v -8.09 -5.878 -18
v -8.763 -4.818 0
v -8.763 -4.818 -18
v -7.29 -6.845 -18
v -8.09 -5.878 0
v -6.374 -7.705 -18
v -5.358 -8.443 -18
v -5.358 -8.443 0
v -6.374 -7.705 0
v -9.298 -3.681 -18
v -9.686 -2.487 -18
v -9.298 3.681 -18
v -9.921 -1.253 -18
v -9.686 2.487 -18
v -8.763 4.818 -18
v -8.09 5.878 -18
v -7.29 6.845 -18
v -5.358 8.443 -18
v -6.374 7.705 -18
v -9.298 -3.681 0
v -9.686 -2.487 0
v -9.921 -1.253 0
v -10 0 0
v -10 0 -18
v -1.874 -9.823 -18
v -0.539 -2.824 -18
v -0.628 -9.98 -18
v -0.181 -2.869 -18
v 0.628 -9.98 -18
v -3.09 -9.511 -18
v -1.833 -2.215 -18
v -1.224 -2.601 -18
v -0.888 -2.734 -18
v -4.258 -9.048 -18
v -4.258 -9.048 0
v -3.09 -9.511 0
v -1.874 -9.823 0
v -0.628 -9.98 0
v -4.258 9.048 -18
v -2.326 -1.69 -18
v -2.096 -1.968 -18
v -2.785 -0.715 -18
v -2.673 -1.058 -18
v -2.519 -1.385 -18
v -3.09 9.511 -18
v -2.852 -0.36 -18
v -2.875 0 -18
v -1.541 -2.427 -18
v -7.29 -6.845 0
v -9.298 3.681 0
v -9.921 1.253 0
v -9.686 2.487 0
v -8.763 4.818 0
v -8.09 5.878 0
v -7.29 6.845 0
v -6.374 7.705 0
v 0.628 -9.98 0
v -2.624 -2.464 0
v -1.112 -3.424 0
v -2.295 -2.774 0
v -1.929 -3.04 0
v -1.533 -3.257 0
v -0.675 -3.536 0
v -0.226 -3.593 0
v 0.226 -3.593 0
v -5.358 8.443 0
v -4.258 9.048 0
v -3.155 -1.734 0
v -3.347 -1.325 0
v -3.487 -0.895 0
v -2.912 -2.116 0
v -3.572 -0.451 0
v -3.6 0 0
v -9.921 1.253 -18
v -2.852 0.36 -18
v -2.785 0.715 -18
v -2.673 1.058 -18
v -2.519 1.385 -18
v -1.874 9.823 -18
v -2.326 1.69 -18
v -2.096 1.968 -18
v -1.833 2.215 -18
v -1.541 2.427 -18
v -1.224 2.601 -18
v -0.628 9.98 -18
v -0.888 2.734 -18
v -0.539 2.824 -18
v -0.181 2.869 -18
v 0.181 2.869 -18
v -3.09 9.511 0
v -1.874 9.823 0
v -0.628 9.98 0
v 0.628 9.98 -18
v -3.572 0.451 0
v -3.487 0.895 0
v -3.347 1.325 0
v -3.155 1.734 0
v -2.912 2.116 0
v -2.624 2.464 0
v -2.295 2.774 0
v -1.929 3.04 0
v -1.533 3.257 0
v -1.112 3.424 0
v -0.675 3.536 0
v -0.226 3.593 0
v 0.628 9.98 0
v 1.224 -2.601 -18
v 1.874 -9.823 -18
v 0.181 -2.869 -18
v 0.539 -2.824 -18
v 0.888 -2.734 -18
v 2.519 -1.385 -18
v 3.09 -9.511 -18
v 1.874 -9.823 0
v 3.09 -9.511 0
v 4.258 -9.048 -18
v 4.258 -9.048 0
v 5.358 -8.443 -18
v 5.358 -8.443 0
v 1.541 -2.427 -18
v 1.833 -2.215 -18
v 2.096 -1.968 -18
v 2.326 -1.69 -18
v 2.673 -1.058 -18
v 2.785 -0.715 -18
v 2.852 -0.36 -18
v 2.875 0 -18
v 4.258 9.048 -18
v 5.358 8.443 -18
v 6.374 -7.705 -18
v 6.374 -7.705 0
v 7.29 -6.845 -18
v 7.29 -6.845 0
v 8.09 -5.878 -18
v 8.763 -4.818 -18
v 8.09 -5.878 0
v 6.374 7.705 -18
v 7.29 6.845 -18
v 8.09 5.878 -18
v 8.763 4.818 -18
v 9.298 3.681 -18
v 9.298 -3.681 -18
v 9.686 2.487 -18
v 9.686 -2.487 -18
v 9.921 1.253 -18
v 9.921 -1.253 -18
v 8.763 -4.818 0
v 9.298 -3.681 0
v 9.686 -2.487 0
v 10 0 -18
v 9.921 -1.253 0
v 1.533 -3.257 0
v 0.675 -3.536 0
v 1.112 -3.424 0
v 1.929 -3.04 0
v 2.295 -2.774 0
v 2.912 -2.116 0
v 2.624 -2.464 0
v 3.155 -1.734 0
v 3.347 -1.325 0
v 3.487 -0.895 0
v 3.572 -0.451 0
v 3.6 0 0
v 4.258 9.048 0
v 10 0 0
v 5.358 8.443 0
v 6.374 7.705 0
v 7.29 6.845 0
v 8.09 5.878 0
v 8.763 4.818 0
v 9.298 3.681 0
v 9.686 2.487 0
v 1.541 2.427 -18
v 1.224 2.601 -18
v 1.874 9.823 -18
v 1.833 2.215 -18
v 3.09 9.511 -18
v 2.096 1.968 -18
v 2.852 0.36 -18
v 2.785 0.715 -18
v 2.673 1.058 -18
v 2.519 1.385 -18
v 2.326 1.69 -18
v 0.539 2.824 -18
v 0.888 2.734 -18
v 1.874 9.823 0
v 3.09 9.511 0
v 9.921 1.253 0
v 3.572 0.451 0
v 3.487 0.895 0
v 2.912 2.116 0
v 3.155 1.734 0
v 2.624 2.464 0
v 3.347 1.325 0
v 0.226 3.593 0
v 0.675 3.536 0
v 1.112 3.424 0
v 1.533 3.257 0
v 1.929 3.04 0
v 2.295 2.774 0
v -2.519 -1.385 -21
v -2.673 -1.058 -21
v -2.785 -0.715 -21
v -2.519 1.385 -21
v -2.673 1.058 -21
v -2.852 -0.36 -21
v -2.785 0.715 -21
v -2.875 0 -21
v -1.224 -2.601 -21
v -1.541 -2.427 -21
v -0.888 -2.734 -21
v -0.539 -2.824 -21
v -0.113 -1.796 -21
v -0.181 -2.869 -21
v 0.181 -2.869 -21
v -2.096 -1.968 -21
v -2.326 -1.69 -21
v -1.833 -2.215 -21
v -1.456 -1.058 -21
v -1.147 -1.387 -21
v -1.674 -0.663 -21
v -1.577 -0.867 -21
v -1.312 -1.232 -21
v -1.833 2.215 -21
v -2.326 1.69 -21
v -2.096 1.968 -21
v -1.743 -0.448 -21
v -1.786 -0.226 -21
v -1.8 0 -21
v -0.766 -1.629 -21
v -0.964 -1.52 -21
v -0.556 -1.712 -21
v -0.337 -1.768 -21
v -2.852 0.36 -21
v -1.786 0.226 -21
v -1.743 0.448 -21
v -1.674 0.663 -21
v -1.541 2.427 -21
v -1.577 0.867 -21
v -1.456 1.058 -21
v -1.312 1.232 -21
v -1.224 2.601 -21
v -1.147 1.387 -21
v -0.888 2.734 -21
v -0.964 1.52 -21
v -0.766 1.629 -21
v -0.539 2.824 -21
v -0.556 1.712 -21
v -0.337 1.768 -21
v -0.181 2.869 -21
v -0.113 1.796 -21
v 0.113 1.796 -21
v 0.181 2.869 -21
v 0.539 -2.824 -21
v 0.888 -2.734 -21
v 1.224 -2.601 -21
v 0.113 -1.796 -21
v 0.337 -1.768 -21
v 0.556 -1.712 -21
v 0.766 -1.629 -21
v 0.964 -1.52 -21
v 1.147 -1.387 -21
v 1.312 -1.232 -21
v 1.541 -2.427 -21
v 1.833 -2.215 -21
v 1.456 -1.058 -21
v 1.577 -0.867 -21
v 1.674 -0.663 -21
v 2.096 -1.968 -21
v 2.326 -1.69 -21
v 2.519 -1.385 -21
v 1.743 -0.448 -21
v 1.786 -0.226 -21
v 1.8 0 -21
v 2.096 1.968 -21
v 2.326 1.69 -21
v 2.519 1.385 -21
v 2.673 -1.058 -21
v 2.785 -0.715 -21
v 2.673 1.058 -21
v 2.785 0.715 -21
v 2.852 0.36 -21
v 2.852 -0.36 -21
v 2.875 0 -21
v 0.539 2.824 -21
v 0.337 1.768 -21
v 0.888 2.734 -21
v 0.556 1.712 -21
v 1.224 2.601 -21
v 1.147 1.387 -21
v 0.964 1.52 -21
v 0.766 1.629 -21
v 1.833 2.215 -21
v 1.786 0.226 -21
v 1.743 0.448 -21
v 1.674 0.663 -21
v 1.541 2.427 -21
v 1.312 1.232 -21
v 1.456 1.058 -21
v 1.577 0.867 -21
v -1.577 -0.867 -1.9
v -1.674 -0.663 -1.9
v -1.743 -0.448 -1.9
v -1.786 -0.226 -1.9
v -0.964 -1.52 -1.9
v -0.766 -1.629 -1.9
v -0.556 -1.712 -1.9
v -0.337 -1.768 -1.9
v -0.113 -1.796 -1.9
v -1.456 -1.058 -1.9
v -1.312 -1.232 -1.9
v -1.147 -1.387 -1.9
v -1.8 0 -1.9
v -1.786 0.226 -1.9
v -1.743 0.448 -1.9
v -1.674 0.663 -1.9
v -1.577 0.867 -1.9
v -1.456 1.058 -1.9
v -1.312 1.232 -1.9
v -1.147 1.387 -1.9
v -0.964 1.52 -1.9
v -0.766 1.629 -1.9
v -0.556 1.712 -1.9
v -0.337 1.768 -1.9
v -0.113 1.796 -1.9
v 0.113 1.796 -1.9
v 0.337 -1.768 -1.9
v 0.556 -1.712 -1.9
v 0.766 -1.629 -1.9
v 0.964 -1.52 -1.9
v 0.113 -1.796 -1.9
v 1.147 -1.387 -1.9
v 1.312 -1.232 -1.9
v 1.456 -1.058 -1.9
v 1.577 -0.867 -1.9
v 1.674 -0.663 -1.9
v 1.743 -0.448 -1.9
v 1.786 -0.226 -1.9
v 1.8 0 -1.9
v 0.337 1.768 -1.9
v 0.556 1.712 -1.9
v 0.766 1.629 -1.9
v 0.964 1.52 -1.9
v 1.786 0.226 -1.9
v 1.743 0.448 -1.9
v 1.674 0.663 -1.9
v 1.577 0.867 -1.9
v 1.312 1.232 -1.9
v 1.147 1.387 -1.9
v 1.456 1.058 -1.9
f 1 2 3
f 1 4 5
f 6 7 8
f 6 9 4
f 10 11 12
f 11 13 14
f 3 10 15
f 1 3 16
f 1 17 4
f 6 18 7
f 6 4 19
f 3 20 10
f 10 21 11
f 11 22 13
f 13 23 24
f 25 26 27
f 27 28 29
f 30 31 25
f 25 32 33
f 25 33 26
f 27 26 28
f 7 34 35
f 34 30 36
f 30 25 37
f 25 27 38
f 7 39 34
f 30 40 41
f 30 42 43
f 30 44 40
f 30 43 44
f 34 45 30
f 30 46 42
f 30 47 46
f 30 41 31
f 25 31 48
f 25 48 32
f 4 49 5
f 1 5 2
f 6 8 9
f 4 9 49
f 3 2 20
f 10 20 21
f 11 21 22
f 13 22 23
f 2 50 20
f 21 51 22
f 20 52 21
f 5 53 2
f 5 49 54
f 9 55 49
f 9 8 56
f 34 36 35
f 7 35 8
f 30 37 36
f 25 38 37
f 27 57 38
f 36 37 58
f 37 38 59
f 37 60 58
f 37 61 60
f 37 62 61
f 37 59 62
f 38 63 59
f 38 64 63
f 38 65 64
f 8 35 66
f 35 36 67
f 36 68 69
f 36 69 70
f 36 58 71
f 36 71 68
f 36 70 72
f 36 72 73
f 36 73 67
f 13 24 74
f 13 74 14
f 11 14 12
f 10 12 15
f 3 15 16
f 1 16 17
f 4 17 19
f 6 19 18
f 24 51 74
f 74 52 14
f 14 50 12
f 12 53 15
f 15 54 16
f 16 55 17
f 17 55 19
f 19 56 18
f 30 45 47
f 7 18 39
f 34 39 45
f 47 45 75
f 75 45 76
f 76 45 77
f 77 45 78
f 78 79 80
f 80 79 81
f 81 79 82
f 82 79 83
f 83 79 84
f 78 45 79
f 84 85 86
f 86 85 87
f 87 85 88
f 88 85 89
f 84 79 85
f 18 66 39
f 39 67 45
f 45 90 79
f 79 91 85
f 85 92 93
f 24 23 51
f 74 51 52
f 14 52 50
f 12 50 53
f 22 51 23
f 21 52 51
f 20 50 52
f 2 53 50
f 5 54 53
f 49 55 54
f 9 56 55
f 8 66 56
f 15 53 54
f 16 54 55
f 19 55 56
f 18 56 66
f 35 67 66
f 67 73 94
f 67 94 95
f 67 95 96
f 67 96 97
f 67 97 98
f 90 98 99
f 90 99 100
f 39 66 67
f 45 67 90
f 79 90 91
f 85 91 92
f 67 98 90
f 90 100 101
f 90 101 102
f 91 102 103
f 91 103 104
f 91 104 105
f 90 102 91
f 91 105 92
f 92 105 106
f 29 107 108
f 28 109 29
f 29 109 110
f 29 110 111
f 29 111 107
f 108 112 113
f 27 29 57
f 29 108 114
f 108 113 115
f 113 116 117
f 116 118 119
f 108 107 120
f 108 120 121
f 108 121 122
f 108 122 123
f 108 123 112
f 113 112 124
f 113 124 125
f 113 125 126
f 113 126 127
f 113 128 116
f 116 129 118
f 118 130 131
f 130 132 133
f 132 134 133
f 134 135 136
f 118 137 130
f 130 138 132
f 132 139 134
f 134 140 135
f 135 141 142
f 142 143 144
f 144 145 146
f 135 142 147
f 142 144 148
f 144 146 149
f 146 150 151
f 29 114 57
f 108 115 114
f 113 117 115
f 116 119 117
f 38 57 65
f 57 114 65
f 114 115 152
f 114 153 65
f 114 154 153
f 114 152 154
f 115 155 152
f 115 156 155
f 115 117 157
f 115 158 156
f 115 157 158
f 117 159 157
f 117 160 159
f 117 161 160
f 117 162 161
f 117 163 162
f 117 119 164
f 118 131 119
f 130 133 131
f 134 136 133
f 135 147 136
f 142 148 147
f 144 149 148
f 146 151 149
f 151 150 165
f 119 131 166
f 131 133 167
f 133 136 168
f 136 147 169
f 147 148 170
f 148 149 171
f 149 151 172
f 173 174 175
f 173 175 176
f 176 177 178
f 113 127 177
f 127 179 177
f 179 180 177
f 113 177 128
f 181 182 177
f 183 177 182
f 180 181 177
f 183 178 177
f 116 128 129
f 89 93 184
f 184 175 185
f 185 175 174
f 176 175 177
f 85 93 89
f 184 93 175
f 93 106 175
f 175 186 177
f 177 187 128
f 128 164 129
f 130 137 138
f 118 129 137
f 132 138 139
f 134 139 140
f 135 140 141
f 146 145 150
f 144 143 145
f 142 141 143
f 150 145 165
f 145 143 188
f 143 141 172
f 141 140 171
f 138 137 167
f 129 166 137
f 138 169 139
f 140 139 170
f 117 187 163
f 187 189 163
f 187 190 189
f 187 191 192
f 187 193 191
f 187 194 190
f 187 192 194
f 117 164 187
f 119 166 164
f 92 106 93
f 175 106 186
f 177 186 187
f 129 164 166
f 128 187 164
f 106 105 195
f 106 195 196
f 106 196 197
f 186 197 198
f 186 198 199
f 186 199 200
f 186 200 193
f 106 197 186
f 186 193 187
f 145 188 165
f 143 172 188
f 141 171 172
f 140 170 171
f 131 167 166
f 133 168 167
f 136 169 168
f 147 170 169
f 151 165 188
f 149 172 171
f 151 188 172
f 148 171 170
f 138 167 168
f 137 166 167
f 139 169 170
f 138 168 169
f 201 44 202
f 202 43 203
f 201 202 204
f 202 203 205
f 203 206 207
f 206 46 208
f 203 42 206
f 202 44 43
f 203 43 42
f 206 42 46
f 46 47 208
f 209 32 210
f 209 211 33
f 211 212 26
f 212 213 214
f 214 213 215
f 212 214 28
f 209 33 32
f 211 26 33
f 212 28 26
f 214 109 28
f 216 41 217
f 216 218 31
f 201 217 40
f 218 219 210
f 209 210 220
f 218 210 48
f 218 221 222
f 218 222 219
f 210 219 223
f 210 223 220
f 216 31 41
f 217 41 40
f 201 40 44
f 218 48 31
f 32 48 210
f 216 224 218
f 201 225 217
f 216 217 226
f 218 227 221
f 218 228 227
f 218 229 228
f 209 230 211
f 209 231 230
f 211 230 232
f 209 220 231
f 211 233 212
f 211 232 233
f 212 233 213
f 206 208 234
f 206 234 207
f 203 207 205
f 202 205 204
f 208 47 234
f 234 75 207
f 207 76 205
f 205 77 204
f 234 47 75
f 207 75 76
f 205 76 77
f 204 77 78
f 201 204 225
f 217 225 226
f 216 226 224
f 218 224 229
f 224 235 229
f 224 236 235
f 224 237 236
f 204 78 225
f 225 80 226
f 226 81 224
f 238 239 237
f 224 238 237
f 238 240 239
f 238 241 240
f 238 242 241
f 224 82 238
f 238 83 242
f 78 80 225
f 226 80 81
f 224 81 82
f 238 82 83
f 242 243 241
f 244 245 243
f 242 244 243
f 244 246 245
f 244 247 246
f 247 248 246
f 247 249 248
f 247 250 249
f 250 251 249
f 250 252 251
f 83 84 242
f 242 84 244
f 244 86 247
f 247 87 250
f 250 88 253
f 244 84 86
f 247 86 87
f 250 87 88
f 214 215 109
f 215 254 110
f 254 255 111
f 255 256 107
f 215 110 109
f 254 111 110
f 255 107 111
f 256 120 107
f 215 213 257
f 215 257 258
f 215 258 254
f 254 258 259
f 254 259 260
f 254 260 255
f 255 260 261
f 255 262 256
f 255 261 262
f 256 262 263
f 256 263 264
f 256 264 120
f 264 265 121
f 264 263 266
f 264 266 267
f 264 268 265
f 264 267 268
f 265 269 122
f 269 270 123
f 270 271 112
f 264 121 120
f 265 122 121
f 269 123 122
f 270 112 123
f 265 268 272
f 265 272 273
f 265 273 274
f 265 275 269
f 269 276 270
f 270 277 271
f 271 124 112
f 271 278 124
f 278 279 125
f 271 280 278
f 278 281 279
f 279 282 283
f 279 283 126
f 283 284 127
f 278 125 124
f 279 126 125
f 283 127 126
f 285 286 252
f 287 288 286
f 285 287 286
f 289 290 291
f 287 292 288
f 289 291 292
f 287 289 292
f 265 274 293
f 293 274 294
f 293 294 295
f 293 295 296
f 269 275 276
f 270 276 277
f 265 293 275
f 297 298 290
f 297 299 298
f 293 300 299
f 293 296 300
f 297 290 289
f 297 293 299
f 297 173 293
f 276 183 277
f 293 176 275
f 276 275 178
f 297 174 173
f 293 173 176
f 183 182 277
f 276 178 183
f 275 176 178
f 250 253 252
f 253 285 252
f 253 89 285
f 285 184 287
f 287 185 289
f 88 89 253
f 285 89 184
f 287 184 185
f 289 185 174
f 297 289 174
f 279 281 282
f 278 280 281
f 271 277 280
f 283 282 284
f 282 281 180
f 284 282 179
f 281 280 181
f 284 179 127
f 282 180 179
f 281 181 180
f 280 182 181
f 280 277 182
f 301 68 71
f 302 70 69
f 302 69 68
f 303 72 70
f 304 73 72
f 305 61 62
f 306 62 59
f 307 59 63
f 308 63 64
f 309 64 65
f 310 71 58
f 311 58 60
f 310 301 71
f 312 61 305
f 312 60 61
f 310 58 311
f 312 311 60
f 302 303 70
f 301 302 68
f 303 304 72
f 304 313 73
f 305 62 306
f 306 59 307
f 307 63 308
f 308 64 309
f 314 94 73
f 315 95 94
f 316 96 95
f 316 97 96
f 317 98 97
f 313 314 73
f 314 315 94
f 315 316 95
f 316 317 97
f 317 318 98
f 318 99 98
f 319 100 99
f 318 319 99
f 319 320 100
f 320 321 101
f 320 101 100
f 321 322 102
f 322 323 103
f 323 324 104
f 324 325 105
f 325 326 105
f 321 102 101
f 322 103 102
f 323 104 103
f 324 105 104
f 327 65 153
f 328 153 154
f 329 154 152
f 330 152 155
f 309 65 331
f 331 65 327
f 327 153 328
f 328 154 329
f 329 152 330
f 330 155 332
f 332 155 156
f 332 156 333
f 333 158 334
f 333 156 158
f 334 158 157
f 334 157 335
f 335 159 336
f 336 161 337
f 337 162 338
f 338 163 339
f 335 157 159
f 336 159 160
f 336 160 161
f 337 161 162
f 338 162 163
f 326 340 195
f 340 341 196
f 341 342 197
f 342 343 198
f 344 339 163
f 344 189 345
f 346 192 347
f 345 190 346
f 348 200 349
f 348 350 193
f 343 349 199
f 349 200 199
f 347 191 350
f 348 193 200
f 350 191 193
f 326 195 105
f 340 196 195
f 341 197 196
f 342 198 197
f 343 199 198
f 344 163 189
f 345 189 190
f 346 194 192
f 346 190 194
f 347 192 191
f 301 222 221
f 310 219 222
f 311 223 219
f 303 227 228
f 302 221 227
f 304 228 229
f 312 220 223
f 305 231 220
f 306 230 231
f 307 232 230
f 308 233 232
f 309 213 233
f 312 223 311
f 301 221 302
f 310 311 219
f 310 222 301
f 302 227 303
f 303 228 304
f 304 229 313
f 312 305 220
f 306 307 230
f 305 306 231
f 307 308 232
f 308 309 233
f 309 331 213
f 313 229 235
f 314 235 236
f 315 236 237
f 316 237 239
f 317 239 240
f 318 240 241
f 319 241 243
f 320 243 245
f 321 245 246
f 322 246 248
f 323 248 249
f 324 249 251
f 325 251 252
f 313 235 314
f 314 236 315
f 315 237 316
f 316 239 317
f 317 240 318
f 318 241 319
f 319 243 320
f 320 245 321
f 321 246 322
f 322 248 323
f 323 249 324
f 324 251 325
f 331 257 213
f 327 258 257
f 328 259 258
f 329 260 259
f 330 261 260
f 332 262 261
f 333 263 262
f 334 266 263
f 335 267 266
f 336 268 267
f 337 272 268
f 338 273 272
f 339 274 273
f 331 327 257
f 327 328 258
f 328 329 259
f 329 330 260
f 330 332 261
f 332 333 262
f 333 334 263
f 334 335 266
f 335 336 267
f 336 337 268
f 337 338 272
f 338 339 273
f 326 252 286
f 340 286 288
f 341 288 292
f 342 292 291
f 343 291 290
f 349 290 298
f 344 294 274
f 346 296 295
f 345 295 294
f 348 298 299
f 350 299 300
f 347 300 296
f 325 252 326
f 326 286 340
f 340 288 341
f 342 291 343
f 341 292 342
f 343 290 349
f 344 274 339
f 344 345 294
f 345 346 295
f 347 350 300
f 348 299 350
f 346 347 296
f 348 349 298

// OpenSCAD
$fn = 50;


difference() {
	union() {
		translate(v = [0, 0, -18.0000000000]) {
			cylinder(h = 18, r = 10.0000000000);
		}
		#translate(v = [0, 0, -21.0000000000]) {
			cylinder(h = 21, r = 2.8750000000);
		}
	}
	union() {
		translate(v = [0, 0, 0]) {
			rotate(a = [0, 0, 0]) {
				difference() {
					union() {
						translate(v = [0, 0, -21.0000000000]) {
							cylinder(h = 21, r = 1.5000000000);
						}
						translate(v = [0, 0, -1.9000000000]) {
							cylinder(h = 1.9000000000, r1 = 1.8000000000, r2 = 3.6000000000);
						}
						translate(v = [0, 0, -21.0000000000]) {
							cylinder(h = 21, r = 1.8000000000);
						}
						translate(v = [0, 0, -21.0000000000]) {
							cylinder(h = 21, r = 1.5000000000);
						}
					}
					union();
				}
			}
		}
	}
}
